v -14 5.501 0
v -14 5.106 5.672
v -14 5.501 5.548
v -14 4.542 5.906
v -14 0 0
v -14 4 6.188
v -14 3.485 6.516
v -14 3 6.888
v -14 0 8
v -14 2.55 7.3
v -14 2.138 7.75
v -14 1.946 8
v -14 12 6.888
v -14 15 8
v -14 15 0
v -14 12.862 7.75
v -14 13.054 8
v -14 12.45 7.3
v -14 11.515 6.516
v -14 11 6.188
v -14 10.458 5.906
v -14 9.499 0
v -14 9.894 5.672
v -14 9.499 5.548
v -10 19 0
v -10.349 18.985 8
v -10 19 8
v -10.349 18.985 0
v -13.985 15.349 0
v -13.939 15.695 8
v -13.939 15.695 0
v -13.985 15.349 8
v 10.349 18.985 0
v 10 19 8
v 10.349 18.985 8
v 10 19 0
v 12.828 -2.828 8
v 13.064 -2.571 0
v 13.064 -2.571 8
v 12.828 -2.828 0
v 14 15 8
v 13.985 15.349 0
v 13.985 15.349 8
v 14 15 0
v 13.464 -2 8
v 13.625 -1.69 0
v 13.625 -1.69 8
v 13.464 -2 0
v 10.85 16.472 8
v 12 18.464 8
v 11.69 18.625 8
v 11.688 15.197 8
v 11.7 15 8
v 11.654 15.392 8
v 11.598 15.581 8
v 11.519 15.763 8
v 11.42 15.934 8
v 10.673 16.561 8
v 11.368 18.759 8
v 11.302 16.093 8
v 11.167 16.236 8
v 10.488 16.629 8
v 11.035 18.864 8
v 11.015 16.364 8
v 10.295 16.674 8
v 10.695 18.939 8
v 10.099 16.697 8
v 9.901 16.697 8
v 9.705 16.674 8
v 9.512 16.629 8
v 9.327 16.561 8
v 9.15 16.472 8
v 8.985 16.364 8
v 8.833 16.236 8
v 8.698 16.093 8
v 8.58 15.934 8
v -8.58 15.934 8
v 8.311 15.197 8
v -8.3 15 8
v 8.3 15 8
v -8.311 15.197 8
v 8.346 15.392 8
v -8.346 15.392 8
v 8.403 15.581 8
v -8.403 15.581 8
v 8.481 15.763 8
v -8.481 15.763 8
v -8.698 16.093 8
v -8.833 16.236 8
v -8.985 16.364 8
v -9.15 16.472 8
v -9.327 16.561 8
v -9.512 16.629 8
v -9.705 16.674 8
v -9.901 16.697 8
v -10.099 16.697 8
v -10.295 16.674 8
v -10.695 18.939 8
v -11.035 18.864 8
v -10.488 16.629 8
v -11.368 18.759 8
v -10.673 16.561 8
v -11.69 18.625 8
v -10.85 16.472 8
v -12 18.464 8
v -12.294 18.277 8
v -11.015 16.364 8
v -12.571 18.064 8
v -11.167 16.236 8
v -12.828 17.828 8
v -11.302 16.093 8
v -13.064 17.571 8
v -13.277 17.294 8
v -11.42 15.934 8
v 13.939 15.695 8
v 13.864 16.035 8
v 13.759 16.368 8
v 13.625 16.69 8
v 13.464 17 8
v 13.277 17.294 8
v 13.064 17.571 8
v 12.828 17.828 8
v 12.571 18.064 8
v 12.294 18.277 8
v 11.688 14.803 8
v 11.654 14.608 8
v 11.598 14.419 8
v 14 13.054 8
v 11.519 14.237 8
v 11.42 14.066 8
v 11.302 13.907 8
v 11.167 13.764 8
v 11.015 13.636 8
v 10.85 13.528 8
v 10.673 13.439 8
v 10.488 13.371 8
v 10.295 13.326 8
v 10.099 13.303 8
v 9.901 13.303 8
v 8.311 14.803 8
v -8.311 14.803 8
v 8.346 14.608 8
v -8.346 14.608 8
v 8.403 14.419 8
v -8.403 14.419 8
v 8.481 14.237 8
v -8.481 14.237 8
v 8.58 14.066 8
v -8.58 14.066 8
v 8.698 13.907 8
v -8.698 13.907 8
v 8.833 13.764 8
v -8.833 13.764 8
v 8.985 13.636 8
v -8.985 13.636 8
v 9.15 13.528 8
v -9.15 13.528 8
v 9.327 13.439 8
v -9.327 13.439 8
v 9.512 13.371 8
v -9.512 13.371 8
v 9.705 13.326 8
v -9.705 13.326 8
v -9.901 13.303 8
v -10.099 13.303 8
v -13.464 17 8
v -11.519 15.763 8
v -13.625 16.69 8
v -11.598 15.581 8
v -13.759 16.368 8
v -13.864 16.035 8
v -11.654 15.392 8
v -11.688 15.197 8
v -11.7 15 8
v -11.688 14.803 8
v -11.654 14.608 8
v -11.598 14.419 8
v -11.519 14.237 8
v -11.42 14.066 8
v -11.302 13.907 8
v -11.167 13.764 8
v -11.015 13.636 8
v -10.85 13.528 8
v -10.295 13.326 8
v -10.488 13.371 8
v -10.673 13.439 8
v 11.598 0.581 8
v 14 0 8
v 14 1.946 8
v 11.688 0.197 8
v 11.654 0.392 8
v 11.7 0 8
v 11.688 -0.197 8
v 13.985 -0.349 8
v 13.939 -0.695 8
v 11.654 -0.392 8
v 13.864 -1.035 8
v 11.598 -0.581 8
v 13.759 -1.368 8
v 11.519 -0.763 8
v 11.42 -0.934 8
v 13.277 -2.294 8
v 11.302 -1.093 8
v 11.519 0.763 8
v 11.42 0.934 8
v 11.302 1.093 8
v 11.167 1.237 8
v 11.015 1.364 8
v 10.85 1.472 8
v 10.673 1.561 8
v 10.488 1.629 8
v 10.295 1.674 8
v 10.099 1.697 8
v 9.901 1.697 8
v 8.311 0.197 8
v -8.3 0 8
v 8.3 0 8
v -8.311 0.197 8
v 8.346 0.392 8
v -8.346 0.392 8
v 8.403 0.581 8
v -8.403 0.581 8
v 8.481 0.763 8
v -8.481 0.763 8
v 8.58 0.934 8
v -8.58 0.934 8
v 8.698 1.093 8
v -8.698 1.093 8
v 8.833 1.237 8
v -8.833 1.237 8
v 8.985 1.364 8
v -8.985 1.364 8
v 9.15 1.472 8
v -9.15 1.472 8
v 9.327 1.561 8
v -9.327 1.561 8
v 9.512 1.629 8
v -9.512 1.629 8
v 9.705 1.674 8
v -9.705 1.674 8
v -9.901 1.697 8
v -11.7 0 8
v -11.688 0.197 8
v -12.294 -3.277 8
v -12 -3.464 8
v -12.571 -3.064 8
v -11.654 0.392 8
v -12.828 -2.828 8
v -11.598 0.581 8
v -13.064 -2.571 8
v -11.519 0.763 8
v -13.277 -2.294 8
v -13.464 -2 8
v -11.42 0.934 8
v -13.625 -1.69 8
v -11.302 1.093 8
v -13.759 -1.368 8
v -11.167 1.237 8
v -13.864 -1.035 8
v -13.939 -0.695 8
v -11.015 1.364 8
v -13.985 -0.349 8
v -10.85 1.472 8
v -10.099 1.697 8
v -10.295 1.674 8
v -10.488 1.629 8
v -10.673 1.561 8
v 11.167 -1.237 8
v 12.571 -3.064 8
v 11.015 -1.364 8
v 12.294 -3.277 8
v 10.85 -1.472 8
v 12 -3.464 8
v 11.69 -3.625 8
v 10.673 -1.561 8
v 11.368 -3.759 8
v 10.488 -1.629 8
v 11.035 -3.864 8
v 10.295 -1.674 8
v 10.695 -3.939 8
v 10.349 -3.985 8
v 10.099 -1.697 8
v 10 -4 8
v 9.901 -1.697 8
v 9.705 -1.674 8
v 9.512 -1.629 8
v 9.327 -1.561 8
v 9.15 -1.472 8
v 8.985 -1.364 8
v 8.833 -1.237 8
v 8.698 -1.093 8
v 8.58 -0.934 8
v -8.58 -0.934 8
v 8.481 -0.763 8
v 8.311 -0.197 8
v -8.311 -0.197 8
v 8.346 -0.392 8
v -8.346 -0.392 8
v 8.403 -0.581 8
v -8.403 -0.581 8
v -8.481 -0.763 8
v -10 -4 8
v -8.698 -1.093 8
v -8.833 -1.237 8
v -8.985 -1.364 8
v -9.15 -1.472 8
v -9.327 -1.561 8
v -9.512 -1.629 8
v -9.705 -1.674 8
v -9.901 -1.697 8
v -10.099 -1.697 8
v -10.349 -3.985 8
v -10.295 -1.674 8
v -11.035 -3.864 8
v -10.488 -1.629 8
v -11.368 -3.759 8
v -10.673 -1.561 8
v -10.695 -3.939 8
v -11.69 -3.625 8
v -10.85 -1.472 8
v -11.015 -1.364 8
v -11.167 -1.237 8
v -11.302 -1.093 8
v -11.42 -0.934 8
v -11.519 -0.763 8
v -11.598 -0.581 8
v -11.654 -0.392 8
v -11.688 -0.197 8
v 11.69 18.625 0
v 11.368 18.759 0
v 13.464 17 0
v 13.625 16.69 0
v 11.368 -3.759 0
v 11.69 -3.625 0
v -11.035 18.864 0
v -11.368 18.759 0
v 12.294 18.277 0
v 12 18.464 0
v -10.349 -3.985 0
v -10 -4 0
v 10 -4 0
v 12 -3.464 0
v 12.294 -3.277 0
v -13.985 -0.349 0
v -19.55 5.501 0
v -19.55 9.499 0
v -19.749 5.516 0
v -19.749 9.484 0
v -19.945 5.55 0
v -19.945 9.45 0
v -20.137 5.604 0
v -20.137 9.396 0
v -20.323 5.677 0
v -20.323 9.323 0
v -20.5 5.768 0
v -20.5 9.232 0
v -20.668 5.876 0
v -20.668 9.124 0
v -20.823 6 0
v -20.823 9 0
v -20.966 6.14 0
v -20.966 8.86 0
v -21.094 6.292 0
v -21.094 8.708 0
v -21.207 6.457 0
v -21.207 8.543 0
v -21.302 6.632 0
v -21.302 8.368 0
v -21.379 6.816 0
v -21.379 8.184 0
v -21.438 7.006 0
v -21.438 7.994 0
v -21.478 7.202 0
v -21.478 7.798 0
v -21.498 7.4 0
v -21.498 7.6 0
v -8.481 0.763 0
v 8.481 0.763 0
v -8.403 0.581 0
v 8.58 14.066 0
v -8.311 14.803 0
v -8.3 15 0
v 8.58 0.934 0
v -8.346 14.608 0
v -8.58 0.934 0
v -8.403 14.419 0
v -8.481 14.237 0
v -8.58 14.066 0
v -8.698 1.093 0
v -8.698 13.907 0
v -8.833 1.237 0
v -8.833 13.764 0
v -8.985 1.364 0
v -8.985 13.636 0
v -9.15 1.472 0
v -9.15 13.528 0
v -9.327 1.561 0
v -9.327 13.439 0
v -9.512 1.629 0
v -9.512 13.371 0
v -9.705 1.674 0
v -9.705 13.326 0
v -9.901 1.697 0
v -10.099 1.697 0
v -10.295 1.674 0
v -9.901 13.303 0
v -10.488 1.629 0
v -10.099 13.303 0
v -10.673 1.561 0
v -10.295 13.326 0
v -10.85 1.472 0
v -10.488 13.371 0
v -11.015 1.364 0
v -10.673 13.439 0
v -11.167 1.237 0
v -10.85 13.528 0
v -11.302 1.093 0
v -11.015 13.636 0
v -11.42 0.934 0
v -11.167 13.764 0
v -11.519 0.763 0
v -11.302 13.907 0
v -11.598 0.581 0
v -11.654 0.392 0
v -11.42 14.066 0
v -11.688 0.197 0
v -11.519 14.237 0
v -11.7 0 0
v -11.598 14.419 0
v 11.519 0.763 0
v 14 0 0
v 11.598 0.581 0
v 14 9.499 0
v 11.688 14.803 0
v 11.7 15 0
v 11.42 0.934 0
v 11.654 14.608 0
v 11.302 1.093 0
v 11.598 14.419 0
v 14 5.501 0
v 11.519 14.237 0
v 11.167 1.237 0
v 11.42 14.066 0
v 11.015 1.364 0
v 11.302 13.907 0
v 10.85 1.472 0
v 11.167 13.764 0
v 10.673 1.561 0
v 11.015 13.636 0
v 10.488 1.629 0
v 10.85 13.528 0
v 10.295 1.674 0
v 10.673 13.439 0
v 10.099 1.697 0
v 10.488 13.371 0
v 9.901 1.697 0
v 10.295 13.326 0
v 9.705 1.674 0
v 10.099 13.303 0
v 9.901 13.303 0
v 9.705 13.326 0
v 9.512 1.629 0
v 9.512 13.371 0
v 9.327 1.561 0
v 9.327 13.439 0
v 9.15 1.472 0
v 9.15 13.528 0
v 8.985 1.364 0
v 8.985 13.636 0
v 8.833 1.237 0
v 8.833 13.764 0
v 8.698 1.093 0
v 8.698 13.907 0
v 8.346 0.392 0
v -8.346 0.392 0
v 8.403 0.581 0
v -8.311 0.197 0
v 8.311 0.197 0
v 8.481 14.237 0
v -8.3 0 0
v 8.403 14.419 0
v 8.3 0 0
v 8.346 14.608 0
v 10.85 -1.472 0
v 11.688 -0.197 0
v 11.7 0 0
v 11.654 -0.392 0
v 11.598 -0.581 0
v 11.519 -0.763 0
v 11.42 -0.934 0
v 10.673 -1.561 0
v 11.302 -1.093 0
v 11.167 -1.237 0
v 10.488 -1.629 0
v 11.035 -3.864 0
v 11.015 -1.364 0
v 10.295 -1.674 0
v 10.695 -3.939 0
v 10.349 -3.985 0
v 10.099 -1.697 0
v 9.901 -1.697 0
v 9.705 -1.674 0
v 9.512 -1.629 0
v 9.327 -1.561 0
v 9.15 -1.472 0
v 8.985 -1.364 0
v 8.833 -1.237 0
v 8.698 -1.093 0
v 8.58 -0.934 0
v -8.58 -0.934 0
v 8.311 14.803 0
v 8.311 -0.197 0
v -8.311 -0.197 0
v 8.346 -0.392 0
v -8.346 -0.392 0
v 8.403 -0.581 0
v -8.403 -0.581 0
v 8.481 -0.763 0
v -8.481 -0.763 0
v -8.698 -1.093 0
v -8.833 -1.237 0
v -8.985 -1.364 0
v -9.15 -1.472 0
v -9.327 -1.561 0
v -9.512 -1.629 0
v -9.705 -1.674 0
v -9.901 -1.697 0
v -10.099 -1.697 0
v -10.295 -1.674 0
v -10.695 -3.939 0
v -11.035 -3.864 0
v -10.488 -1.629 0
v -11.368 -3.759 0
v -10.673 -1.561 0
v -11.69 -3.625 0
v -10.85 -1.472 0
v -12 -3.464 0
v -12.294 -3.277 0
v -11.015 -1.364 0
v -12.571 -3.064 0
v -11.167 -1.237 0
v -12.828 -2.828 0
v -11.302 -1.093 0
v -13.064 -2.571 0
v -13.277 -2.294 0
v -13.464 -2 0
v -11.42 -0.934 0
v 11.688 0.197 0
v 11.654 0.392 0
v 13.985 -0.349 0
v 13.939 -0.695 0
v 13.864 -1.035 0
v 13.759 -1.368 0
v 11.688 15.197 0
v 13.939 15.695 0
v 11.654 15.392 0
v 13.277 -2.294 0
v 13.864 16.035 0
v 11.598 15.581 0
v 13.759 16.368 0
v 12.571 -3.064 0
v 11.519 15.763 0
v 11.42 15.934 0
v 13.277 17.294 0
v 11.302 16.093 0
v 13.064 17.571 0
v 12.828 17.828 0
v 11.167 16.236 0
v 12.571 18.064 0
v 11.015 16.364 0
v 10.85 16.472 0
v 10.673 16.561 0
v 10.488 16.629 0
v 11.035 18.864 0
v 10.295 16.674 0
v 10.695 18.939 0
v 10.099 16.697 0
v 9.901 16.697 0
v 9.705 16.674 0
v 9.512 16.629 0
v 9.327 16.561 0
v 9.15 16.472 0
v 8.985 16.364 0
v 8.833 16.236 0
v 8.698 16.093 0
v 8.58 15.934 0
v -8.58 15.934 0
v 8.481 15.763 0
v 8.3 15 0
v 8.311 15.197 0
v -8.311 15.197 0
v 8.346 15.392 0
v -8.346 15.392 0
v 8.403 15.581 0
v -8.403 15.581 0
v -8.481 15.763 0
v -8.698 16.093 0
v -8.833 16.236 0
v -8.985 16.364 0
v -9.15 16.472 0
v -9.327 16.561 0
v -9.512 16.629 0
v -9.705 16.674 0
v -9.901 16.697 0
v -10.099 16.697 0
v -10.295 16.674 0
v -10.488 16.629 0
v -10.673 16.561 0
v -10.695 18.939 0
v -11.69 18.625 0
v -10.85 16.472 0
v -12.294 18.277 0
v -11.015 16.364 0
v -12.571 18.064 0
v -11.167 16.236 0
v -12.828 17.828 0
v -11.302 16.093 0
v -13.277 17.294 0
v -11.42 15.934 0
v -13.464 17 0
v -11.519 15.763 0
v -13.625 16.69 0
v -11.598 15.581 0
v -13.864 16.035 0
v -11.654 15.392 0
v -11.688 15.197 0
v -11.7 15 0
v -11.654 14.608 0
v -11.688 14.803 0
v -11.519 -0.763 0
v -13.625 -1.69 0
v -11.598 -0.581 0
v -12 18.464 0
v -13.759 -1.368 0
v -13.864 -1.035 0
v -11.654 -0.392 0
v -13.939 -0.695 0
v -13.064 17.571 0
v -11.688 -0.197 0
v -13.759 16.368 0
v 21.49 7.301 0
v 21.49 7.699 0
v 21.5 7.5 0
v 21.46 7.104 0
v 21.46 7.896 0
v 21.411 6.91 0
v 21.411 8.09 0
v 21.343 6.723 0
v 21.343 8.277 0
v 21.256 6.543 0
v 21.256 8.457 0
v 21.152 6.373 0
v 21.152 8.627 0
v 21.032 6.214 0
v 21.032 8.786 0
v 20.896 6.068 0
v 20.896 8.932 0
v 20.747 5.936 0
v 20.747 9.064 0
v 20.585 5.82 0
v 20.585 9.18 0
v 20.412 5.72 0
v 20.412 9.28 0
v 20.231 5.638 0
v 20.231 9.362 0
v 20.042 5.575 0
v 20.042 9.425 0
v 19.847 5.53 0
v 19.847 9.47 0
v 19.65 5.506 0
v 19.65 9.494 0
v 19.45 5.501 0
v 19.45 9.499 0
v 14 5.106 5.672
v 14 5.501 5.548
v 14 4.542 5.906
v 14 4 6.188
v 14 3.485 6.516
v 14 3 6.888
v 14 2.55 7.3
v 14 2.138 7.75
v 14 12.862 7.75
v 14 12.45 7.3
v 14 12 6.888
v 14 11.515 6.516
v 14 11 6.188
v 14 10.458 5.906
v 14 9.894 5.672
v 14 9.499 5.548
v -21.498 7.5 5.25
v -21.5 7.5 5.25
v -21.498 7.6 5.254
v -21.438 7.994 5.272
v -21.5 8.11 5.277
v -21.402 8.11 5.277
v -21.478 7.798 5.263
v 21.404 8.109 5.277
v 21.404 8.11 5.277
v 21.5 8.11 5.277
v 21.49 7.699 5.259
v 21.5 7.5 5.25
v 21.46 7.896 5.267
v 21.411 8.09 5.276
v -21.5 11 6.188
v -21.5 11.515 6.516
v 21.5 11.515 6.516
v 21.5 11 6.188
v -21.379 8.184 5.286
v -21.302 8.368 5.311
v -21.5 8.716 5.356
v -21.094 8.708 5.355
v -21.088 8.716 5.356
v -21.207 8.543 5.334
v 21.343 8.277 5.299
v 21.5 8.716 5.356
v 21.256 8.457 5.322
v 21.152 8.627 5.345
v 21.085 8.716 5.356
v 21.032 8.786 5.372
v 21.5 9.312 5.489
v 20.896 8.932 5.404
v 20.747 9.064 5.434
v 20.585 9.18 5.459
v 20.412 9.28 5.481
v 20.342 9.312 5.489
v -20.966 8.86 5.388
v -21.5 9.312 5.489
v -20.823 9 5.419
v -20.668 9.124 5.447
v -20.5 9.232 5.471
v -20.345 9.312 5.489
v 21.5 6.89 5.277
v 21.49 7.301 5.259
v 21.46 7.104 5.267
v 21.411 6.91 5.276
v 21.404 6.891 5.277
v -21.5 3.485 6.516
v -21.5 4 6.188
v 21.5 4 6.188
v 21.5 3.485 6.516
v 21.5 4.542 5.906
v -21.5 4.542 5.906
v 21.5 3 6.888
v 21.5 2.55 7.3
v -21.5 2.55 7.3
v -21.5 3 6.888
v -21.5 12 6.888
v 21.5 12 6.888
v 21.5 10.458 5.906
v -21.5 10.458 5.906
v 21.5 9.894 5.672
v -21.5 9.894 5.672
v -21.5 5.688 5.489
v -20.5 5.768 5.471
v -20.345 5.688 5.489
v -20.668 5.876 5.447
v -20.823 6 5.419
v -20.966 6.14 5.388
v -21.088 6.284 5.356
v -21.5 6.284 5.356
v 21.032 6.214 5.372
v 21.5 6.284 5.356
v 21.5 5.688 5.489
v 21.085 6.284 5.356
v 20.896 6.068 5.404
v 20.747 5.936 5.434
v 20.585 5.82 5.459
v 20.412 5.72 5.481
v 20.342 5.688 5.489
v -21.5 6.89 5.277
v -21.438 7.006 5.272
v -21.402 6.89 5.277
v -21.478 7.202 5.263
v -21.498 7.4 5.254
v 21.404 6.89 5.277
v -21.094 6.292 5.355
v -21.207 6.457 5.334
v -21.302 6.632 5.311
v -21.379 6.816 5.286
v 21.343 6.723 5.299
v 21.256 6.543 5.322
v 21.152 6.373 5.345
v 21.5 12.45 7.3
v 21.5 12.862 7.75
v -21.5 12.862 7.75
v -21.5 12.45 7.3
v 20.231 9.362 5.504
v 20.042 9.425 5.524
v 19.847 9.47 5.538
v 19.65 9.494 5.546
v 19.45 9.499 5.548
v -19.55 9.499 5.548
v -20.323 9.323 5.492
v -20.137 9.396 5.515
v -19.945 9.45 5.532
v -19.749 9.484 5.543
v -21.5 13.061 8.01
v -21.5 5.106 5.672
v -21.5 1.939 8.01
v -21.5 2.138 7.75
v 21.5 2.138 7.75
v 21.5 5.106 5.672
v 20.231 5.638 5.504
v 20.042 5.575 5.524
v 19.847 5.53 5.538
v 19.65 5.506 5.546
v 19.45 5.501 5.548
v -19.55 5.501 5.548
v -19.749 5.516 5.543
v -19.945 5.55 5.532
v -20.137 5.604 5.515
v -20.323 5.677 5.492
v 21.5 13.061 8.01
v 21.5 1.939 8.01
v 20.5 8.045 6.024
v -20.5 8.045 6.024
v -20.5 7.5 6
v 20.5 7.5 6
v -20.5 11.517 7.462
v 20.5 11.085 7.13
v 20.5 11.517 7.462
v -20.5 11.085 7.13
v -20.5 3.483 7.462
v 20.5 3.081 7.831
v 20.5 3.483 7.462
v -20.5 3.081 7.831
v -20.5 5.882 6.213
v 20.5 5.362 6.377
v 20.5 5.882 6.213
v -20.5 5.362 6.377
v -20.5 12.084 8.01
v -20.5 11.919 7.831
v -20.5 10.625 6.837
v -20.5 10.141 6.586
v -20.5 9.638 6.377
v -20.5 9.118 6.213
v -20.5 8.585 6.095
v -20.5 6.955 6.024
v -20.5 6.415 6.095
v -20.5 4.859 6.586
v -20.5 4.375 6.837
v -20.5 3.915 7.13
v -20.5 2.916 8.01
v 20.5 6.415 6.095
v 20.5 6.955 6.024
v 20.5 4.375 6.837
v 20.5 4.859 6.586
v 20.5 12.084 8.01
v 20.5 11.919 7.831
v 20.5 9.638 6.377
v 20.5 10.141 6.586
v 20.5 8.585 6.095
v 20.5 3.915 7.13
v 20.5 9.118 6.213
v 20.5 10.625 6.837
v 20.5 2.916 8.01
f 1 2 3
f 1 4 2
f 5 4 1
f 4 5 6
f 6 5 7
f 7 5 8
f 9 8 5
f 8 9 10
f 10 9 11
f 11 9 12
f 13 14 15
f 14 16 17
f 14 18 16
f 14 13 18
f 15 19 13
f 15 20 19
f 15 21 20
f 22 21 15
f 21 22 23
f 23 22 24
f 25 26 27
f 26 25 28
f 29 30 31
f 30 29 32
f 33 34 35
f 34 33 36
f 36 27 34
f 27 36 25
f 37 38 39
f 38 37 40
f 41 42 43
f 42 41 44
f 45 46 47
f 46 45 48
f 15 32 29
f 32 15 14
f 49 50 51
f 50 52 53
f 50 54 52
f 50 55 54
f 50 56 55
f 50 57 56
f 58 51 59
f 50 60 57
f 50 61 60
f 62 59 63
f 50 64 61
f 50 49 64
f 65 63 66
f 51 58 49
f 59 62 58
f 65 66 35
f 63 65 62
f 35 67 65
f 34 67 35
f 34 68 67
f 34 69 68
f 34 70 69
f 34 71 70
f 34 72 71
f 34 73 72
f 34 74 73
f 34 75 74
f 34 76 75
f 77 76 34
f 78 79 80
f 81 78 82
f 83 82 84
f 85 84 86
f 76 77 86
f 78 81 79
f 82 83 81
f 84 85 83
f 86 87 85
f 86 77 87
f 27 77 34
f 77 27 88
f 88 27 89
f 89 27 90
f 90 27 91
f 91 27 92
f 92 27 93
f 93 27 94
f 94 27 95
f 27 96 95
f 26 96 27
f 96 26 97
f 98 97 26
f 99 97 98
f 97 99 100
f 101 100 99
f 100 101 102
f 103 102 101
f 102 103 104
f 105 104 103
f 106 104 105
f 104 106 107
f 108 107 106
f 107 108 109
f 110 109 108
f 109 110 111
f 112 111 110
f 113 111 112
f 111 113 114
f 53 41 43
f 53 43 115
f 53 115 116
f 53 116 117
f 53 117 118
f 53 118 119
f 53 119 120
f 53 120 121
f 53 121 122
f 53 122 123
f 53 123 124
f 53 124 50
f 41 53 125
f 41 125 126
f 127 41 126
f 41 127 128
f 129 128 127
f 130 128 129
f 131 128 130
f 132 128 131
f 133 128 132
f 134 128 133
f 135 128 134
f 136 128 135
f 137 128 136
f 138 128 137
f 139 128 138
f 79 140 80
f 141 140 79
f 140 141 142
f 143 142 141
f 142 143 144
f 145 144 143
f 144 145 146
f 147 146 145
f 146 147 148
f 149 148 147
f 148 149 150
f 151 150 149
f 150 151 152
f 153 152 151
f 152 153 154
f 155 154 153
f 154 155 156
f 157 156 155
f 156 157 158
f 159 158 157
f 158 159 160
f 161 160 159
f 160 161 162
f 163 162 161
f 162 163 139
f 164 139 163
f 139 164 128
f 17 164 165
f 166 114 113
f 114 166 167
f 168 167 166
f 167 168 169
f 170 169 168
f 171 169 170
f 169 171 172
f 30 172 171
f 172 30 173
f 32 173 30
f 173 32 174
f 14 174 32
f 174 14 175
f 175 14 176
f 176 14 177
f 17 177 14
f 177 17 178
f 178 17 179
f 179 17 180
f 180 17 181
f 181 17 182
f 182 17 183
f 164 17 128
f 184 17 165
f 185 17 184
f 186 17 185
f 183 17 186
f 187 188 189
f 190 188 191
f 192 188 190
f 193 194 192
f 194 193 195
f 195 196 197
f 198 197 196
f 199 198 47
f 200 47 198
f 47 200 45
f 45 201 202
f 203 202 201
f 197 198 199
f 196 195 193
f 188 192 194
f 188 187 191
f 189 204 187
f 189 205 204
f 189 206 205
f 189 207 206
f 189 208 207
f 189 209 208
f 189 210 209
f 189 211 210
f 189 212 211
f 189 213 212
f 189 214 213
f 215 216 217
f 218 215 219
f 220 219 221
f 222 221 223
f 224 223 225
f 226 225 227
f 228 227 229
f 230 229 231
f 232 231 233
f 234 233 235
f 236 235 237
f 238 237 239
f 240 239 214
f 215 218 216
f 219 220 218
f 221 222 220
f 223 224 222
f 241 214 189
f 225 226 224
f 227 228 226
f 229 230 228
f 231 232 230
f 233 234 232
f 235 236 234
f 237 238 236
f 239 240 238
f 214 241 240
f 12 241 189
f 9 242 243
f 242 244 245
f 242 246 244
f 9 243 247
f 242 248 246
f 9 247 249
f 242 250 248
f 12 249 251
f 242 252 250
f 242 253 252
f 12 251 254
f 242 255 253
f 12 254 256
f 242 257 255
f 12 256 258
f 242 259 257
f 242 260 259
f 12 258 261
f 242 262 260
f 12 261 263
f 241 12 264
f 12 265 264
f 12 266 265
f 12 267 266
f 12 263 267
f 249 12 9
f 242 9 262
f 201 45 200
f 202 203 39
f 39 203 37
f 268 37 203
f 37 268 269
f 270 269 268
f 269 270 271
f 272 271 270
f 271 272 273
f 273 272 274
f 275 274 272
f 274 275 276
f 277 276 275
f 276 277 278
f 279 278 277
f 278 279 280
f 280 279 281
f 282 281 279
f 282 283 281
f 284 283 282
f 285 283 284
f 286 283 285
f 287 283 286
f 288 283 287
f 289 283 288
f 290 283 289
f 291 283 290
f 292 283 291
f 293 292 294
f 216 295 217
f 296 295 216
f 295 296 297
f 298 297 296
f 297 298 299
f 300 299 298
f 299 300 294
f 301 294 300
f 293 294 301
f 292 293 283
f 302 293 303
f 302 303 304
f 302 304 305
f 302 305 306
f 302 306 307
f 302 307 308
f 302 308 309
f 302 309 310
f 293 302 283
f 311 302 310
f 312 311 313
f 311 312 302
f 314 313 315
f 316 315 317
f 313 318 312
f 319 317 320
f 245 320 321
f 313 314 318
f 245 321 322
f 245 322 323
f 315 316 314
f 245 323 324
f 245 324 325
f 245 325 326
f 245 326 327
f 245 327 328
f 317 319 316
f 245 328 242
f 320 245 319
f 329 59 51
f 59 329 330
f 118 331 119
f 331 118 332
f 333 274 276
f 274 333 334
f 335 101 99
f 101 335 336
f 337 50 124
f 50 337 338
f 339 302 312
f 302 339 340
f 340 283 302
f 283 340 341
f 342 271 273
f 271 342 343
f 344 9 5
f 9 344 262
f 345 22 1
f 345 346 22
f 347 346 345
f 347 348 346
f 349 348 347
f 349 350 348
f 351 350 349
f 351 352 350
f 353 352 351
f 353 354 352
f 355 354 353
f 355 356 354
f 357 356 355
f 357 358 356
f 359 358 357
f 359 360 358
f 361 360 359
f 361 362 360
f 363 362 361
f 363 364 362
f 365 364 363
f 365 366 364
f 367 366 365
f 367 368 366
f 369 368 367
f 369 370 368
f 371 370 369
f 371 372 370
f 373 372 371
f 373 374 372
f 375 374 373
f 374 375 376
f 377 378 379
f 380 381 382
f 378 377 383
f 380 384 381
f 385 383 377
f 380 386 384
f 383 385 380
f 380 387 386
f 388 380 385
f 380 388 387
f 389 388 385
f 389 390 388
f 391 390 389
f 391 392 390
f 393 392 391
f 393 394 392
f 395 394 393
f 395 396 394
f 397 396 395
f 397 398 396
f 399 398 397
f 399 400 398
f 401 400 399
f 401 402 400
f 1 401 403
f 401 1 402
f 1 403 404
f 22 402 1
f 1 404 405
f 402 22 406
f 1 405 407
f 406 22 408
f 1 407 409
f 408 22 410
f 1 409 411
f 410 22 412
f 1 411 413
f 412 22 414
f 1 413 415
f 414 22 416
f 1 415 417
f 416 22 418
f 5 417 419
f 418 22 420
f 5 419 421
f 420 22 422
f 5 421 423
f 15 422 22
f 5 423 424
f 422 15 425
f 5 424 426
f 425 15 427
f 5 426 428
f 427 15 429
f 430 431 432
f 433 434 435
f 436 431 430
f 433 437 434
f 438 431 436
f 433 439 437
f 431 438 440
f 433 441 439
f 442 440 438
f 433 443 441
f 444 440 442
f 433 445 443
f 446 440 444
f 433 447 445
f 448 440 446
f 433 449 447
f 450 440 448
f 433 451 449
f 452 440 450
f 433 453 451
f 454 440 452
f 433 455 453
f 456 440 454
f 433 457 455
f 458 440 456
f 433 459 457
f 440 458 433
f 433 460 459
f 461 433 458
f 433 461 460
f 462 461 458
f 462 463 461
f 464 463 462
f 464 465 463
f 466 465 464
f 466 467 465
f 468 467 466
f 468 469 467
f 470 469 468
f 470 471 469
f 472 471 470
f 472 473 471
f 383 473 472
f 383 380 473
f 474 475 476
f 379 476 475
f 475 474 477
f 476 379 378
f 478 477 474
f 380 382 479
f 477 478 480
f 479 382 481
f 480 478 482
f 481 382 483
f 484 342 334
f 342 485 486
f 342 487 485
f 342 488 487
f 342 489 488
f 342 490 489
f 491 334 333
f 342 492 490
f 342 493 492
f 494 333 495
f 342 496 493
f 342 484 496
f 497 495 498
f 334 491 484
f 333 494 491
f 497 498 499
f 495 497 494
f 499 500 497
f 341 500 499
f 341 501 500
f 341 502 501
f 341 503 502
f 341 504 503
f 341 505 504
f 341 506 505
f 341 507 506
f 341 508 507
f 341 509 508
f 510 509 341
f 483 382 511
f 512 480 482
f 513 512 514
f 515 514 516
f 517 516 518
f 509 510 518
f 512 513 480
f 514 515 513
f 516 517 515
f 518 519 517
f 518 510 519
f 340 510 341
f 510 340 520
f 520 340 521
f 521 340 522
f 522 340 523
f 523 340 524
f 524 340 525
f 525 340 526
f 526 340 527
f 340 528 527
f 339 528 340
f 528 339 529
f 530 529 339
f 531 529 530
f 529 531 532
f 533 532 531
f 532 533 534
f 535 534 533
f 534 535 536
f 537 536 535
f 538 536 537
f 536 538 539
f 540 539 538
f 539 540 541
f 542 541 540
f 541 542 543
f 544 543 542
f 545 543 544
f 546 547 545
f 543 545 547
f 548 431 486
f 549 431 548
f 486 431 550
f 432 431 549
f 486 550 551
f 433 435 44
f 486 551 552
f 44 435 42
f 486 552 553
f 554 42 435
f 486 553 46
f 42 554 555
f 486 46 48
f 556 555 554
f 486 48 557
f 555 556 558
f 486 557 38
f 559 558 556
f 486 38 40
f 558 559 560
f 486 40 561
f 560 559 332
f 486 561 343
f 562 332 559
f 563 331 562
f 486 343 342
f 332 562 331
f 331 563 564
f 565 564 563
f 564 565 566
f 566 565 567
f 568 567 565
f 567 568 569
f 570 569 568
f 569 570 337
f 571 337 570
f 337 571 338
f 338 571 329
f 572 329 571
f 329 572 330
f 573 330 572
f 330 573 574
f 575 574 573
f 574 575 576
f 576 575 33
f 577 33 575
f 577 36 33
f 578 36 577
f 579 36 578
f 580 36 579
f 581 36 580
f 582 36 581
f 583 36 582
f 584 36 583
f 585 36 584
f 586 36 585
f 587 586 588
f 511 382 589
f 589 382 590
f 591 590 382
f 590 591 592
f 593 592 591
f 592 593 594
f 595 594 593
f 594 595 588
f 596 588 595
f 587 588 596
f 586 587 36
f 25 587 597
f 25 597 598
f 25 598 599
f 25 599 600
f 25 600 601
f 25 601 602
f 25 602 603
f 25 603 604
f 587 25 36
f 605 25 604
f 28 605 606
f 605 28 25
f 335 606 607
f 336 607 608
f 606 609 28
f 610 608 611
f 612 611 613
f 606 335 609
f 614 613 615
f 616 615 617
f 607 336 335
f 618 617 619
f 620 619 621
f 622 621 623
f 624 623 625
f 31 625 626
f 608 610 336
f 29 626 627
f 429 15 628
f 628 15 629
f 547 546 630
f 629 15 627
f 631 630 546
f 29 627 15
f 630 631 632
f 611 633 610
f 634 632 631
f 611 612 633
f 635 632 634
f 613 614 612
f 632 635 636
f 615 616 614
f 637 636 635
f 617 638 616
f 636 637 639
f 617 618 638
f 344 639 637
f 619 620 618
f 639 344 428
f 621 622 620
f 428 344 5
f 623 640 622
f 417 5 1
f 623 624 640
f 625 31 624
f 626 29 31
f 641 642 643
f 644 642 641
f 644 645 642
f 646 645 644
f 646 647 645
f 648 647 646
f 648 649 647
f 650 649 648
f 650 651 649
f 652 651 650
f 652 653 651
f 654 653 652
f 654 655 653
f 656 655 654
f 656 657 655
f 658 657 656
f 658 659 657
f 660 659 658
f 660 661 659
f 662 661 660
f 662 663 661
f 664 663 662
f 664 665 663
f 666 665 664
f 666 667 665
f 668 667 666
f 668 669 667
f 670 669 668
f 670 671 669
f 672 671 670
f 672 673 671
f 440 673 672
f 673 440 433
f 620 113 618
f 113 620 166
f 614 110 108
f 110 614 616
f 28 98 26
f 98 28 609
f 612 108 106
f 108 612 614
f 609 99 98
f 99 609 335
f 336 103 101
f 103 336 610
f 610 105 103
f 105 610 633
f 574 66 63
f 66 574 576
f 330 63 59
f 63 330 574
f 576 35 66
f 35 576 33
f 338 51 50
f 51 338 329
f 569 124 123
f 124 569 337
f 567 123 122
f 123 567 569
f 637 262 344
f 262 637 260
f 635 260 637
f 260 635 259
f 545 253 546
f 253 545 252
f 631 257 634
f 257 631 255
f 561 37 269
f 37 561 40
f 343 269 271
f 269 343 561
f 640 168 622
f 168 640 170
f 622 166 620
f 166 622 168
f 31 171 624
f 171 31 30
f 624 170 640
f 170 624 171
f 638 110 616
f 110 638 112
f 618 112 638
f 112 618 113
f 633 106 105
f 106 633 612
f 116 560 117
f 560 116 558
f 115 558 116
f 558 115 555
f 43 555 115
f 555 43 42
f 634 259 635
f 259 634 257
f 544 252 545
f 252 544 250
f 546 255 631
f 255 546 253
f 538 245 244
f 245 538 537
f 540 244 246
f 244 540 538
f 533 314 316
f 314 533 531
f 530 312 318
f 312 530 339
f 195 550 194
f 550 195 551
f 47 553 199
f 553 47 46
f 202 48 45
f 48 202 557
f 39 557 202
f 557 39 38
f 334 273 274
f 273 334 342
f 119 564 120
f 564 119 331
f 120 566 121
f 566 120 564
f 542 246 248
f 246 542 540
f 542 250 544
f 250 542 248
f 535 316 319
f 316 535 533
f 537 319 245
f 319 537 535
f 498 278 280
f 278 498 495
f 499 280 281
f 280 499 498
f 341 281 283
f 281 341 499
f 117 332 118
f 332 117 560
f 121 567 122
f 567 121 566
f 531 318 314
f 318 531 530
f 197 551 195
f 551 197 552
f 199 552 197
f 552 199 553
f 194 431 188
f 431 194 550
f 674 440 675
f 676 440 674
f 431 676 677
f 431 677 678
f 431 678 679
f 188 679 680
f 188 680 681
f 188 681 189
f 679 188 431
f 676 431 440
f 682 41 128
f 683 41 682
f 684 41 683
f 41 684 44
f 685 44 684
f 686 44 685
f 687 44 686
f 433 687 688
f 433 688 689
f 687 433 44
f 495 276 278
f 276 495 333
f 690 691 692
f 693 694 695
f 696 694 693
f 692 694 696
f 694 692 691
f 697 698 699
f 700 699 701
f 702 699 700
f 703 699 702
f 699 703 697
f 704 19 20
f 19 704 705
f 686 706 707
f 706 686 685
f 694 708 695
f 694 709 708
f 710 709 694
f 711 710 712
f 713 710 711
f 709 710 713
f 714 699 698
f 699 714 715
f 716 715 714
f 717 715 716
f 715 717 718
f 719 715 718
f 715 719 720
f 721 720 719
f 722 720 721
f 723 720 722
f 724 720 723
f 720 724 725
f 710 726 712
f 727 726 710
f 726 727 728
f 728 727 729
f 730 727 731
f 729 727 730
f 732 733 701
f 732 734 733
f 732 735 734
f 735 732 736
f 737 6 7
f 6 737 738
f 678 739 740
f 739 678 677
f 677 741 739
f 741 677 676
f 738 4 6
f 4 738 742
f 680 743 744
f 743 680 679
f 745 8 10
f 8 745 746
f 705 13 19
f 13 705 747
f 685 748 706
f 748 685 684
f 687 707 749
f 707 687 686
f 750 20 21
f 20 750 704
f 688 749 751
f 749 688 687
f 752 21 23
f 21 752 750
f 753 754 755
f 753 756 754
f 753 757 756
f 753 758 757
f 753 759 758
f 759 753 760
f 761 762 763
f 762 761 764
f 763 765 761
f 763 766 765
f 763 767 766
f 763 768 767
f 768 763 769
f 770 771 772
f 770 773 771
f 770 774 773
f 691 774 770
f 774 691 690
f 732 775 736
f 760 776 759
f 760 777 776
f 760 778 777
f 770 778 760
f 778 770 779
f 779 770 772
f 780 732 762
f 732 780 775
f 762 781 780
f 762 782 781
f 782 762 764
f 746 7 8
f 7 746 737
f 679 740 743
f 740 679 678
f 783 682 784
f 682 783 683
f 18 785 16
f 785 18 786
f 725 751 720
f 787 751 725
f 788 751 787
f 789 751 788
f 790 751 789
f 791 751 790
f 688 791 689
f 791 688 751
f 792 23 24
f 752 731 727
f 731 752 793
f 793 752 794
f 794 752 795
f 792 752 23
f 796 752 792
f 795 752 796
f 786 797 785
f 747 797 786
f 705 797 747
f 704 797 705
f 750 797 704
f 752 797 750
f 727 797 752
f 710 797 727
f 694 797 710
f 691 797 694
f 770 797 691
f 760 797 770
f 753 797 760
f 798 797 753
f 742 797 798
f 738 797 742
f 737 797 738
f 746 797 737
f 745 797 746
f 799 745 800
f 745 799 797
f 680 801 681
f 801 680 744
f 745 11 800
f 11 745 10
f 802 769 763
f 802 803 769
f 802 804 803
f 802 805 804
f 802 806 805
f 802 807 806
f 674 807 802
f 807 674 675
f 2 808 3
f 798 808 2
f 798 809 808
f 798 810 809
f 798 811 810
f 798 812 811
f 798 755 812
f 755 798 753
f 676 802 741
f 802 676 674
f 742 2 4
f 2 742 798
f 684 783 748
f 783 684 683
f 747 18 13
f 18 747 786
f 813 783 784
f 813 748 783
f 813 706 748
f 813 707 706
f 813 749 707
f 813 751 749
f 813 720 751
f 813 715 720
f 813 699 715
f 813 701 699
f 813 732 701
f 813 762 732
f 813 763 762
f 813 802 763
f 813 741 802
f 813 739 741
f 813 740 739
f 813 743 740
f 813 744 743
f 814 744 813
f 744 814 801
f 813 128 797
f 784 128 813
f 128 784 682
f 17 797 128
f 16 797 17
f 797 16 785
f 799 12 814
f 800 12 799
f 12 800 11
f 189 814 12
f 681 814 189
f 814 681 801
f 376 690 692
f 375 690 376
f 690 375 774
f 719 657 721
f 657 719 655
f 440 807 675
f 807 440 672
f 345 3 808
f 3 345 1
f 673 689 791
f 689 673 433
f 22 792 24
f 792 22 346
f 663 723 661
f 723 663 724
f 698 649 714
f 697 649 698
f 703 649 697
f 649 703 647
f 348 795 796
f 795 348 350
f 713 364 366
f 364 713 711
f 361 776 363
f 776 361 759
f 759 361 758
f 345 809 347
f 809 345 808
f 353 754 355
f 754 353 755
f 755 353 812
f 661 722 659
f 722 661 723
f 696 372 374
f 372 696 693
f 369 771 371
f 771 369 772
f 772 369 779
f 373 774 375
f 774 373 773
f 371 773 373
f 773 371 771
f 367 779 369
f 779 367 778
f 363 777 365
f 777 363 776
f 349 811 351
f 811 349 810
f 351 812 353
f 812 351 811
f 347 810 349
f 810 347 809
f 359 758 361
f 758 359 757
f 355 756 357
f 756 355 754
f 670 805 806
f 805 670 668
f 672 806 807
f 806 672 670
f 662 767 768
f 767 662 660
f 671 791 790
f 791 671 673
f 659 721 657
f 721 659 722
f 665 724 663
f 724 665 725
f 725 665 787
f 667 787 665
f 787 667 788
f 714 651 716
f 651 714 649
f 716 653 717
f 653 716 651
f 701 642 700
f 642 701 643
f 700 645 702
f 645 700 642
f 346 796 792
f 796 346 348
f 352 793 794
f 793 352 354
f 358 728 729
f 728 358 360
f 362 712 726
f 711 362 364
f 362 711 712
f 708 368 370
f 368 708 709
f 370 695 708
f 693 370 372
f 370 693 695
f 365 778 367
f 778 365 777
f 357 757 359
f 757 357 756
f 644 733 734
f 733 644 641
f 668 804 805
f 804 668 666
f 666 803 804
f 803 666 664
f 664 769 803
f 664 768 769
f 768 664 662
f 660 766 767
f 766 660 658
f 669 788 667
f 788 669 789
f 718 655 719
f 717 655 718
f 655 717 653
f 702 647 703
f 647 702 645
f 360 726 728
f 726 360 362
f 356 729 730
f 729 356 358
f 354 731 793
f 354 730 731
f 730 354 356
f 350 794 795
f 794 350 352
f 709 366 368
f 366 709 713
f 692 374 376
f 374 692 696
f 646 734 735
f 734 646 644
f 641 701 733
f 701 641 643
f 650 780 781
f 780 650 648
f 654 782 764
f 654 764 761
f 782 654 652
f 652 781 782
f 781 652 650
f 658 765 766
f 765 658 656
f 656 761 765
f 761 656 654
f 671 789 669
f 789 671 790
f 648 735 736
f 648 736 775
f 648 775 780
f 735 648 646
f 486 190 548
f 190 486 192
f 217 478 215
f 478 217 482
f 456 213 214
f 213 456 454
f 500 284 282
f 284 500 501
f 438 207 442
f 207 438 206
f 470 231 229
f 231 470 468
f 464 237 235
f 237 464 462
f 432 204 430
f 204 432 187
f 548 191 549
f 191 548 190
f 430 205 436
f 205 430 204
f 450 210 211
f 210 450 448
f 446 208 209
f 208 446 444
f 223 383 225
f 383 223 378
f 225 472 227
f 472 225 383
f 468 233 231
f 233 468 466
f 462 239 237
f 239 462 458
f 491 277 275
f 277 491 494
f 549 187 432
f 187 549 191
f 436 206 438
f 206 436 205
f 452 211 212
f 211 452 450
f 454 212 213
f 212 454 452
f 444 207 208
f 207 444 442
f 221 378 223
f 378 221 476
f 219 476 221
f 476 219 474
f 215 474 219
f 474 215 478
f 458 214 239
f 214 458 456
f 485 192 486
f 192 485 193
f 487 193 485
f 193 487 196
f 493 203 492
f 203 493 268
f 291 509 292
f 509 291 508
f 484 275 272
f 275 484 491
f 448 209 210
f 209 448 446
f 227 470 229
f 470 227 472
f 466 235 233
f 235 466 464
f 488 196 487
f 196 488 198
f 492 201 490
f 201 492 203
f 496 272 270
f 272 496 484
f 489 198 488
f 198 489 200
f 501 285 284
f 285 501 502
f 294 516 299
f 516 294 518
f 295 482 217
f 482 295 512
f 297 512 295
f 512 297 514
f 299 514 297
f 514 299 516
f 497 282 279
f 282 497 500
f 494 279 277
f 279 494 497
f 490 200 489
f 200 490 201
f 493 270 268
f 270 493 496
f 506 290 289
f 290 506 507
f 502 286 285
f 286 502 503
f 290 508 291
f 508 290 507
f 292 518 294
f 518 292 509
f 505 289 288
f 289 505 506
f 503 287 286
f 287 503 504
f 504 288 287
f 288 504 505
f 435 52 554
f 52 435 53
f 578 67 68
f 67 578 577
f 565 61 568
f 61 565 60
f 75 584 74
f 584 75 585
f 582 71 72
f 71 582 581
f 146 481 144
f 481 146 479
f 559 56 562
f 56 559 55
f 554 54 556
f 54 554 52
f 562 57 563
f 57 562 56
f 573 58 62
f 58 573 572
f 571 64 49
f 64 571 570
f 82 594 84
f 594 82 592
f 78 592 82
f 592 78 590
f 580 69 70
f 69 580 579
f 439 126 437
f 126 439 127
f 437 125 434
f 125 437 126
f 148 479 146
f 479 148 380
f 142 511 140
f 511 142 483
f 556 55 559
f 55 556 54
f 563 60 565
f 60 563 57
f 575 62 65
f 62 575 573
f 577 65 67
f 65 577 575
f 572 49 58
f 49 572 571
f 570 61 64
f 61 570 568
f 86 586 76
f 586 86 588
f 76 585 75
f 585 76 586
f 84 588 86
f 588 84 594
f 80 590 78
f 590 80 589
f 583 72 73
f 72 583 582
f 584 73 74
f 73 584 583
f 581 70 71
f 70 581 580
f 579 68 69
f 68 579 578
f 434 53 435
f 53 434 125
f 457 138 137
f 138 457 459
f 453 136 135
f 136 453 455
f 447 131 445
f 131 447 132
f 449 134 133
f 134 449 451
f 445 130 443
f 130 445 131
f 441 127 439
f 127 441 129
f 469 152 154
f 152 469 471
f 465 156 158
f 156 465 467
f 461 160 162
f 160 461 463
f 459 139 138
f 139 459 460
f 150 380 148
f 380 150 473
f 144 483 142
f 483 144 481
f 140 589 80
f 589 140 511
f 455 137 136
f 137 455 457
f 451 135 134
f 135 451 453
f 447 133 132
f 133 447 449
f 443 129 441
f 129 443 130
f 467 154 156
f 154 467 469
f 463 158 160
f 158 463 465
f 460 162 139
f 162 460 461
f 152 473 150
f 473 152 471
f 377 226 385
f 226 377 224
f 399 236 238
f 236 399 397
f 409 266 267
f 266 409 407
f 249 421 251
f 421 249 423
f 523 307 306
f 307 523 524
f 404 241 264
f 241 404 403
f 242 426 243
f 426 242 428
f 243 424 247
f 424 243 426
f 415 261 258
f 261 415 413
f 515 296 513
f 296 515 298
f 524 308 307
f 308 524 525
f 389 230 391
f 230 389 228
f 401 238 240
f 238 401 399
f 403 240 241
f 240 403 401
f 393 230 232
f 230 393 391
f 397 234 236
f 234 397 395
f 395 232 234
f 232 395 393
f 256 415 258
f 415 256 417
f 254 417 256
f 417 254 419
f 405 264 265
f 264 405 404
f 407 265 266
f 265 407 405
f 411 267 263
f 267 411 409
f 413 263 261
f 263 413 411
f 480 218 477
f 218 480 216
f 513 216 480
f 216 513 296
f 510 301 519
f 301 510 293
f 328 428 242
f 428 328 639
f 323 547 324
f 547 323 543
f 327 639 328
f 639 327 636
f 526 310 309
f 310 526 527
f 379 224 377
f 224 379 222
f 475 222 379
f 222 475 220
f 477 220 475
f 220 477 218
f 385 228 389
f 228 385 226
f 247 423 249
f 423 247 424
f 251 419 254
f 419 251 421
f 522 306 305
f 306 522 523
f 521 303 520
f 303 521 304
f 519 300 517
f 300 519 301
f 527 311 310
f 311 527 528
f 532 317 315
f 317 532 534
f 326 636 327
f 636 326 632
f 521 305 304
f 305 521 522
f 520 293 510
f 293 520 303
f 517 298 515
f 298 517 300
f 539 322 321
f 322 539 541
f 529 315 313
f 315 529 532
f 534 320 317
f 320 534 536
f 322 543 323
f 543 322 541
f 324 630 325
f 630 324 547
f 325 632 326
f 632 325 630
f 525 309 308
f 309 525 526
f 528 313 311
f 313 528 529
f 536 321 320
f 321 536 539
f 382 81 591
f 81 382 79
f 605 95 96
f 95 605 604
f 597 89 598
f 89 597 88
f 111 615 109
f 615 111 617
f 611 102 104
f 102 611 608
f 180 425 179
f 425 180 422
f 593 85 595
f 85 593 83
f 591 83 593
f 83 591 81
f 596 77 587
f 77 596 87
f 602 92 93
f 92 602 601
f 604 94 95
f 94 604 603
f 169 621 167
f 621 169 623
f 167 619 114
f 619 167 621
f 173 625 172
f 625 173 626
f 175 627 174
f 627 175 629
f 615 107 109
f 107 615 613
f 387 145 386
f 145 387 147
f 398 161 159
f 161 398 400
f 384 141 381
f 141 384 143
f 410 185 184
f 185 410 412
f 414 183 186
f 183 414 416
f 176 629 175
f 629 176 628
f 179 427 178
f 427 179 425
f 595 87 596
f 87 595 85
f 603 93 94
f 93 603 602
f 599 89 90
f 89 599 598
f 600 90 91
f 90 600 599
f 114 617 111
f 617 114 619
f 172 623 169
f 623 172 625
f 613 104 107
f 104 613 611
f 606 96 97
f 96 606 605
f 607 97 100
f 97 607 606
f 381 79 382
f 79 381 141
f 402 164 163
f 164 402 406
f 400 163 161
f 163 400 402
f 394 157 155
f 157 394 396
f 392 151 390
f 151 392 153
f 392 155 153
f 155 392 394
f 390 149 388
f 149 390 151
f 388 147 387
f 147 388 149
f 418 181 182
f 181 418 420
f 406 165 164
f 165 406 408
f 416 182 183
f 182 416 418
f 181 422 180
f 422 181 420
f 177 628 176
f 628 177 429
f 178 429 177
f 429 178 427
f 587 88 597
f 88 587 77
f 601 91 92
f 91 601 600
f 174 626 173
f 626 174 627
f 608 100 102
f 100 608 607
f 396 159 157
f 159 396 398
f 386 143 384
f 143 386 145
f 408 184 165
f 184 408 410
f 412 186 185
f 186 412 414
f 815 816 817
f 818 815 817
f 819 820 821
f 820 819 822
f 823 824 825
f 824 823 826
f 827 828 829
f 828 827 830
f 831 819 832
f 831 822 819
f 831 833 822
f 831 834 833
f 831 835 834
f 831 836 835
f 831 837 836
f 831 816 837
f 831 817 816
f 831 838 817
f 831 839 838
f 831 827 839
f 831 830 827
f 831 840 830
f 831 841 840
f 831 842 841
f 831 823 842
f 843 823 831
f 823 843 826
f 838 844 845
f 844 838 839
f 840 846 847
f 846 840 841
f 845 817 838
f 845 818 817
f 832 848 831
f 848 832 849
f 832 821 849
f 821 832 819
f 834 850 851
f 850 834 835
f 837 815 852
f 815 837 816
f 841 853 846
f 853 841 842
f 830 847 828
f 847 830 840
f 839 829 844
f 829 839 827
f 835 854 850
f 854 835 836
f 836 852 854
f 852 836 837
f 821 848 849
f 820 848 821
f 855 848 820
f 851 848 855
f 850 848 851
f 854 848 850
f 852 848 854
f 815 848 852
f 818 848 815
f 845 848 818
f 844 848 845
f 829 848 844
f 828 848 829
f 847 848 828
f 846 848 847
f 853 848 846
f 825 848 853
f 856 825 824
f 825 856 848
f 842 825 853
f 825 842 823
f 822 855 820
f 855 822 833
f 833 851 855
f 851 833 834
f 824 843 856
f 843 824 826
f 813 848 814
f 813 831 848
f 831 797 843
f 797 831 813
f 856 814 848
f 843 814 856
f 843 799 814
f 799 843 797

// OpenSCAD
$fa=5; $fs=0.2;

difference(){
    
    union(){
       
        // упор под lm6uu
        hull(){ 
            translate([10, 0, 4]) cylinder(h=8, r=4, center=true); 
            translate([-10, 0, 4]) cylinder(h=8, r=4, center=true);
            translate([10, 15, 4]) cylinder(h=8, r=4, center=true);
            translate([-10, 15, 4]) cylinder(h=8, r=4, center=true);
        }
        
        translate([0, 7.5, 12.25]) rotate([0, 90, 0]) cylinder(h=43, r=7, center=true); // цилиндр под LM6UU
        
        // ребро
        hull(){
            translate([-19.5, 7.5, 3]) cylinder(h=6, r=2, center=true);
            translate([19.5, 7.5, 3]) cylinder(h=6, r=2, center=true);
        }
    }
    
    union(){
        translate([10, 0, 4]) cylinder(h=8.01, r=1.7, center=true); // под прижим lm6uu
        translate([10, 15, 4]) cylinder(h=8.01, r=1.7, center=true);
        translate([-10, 0, 4]) cylinder(h=8.01, r=1.7, center=true);
        translate([-10, 15, 4]) cylinder(h=8.01, r=1.7, center=true);
        
        translate([0, 7.5, 12.25]) rotate([0, 90, 0]) cylinder(h=41, r=6.25, center=true); // паз под LM6UU
        
        translate([-25, -25, 8.01]) cube([50,50,20]); //срезать все сверху
    }
}
